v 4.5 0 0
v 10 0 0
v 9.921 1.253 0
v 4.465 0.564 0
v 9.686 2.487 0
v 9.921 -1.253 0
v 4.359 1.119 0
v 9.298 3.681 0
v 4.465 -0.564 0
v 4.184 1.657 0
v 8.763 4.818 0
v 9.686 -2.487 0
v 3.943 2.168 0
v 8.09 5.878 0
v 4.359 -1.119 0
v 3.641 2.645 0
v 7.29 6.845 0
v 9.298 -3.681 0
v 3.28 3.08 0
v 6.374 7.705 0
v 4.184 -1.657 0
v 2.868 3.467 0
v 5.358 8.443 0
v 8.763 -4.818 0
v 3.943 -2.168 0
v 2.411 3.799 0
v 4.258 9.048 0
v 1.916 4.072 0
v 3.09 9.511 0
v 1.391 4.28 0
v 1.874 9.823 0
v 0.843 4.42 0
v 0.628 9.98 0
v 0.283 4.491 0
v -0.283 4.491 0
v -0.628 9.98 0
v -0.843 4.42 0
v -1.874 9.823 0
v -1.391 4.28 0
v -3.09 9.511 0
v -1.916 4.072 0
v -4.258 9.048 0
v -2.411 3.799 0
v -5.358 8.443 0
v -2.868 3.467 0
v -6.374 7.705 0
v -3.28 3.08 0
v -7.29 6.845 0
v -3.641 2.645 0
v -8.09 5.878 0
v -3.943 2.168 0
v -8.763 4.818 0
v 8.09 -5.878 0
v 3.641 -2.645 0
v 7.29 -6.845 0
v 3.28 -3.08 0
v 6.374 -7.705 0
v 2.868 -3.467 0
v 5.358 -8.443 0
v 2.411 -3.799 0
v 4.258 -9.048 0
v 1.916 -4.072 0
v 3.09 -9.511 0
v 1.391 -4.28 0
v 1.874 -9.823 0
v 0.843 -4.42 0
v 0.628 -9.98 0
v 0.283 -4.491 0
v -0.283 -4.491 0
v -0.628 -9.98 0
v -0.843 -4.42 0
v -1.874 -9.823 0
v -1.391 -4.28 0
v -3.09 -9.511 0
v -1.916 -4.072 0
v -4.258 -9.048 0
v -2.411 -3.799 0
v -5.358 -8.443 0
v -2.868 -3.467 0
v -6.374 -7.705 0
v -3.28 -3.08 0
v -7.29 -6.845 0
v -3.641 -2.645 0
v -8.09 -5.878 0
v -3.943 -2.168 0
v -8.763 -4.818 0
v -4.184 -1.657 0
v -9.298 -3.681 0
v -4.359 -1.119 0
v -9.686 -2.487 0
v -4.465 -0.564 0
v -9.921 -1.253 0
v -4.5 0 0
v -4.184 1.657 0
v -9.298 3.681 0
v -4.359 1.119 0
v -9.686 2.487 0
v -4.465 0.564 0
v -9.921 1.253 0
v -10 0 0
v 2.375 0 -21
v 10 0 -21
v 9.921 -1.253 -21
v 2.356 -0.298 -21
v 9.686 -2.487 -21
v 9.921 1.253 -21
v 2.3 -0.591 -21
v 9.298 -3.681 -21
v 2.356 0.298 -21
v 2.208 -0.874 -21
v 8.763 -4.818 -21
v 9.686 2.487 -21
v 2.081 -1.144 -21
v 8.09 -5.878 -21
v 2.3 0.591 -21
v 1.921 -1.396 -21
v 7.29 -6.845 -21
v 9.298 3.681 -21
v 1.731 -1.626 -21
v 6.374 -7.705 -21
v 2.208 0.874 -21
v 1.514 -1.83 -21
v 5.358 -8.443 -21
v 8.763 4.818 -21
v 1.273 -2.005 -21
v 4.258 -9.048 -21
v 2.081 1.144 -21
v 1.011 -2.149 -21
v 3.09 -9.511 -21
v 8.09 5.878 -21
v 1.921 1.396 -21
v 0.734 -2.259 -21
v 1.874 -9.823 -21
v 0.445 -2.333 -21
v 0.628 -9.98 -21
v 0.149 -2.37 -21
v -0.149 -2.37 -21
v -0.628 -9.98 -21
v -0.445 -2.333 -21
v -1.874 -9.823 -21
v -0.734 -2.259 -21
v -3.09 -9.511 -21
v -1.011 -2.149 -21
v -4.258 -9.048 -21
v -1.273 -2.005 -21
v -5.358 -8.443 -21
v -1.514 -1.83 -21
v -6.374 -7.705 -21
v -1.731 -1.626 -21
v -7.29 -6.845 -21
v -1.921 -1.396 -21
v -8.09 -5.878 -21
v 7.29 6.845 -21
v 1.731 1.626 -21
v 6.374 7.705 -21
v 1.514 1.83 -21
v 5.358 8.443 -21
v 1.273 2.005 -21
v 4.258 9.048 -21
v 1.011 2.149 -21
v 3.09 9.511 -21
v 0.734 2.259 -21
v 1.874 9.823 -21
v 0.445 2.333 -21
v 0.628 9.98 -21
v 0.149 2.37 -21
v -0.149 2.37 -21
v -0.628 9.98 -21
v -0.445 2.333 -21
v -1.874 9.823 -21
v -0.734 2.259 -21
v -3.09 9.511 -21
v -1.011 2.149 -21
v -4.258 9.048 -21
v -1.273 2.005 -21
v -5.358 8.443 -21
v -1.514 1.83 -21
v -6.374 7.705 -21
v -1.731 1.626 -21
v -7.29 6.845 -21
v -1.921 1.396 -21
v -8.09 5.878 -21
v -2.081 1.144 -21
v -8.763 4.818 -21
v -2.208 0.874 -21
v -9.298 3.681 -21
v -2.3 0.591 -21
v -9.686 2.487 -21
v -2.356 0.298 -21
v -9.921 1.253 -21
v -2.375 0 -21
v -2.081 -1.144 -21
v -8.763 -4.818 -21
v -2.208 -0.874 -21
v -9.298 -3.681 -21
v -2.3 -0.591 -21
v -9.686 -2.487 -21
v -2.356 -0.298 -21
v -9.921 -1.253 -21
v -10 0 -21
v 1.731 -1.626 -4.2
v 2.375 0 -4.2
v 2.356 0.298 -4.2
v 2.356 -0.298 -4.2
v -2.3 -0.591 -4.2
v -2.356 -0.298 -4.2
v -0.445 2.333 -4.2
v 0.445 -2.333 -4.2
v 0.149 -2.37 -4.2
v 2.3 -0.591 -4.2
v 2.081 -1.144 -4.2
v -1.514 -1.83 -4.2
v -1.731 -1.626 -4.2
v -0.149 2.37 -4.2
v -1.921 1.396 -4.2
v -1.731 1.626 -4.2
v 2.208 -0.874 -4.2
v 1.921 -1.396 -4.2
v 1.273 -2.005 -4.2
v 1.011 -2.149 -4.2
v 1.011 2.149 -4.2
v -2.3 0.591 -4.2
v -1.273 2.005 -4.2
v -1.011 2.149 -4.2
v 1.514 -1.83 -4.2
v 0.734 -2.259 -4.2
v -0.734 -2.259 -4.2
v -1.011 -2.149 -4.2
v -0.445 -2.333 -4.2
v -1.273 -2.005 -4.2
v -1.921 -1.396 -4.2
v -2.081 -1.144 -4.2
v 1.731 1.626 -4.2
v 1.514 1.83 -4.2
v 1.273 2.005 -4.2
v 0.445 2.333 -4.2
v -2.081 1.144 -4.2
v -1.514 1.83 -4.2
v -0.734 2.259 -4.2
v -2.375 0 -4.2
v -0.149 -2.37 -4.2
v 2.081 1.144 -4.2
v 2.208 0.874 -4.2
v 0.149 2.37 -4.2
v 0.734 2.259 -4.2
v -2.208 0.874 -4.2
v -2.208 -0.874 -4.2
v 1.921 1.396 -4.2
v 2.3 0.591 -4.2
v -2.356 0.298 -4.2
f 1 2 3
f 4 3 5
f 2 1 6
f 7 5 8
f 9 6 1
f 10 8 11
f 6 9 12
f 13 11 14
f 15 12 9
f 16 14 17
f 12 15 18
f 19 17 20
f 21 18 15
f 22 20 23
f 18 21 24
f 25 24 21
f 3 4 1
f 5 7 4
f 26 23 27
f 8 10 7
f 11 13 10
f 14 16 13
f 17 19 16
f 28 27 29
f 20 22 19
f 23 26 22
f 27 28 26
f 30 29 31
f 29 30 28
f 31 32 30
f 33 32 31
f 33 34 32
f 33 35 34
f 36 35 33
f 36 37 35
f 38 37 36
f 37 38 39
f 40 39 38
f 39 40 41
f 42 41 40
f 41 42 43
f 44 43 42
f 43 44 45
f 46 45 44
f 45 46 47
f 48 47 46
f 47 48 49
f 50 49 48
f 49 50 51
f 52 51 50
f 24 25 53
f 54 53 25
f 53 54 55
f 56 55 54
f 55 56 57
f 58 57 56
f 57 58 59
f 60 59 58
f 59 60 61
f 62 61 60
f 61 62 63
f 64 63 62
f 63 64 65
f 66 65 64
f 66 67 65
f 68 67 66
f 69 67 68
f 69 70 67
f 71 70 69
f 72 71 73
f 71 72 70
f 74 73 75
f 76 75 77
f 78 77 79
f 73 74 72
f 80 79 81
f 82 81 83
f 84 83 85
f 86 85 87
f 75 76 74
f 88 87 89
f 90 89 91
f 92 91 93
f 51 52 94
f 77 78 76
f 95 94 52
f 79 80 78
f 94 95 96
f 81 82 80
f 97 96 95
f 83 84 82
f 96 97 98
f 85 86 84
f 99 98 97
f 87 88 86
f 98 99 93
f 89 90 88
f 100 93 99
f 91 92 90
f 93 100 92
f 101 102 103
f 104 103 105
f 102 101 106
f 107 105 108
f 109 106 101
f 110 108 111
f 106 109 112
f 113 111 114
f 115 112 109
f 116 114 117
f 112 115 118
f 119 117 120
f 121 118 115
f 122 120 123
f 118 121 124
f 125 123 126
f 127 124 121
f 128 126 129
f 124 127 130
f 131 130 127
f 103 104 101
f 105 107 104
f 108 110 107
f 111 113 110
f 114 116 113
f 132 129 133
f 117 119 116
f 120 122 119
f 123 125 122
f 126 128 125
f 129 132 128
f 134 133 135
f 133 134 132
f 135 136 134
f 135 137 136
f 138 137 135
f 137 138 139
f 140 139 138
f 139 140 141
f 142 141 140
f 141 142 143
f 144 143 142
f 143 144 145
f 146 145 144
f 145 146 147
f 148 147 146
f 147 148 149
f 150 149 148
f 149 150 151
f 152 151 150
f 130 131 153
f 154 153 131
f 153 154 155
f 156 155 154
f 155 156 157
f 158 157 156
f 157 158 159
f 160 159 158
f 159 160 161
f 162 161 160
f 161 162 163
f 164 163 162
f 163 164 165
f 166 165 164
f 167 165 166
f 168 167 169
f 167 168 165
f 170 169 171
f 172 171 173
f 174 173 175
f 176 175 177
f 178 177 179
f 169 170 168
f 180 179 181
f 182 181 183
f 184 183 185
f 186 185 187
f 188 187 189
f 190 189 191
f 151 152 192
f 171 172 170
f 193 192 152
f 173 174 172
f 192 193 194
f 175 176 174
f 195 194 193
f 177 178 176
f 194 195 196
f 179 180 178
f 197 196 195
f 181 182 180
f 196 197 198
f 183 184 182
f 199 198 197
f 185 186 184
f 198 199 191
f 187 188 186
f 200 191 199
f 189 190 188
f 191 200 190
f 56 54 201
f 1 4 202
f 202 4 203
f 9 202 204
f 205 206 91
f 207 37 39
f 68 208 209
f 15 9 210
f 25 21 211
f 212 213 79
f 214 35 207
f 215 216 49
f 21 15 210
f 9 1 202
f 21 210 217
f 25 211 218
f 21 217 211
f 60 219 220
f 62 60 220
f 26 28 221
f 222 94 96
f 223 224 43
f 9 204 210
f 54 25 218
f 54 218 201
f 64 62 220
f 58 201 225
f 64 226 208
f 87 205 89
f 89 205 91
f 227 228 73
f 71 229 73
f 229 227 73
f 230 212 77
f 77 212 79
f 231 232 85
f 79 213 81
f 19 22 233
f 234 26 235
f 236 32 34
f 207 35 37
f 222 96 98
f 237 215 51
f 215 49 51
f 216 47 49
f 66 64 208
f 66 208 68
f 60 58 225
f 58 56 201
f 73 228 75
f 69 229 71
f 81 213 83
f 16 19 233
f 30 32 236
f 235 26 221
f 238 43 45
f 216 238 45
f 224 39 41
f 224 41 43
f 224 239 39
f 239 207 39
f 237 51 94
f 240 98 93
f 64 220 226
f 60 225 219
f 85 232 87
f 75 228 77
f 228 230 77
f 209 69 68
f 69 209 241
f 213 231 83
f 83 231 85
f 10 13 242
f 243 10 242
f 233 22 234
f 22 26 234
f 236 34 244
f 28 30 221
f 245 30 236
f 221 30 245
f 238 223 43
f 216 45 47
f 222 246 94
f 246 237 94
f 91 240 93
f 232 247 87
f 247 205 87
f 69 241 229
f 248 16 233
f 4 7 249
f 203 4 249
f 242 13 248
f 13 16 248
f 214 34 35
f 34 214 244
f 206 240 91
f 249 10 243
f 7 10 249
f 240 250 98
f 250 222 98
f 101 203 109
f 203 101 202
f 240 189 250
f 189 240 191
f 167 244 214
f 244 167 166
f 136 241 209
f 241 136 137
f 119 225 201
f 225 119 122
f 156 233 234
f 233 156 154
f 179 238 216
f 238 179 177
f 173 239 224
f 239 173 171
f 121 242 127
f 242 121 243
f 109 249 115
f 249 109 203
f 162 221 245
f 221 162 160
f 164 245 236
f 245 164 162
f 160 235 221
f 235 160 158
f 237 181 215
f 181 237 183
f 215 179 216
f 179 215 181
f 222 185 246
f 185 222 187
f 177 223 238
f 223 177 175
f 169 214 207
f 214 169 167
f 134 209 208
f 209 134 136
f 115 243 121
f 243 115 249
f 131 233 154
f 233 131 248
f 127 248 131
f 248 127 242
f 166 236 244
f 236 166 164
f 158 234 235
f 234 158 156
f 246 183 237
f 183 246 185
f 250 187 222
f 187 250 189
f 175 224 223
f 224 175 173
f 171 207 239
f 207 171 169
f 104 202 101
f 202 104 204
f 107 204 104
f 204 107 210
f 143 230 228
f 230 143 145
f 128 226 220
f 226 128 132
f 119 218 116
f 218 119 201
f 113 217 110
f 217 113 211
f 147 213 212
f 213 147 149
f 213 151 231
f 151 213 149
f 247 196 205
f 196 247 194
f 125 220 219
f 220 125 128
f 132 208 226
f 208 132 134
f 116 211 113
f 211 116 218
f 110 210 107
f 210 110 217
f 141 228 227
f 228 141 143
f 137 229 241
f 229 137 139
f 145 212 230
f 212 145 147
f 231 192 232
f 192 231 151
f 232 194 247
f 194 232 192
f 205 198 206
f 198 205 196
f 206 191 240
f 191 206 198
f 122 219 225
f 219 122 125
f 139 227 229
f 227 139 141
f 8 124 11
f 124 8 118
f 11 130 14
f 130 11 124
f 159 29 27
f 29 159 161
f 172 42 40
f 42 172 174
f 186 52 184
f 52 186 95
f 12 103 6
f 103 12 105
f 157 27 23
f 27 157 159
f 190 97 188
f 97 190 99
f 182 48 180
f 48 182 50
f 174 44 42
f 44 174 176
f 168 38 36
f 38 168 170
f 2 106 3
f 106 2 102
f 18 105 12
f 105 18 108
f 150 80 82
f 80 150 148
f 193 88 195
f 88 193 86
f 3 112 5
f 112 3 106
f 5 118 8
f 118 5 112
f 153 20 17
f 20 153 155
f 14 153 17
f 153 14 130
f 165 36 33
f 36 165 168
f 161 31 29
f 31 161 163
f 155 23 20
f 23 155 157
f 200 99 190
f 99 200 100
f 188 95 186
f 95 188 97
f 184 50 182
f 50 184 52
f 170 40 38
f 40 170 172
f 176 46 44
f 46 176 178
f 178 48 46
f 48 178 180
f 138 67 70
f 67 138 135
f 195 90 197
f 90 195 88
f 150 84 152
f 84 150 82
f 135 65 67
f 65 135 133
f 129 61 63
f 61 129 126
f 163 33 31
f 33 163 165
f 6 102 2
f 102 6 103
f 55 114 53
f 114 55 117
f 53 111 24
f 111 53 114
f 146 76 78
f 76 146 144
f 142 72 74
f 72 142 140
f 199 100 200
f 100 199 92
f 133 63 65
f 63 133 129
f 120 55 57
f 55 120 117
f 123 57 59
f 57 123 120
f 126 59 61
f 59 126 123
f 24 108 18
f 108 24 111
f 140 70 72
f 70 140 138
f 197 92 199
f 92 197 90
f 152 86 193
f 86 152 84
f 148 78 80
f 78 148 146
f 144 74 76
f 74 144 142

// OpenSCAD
$fn = 50;


difference() {
	union() {
		translate(v = [0, 0, -21.0000000000]) {
			cylinder(h = 21, r = 10.0000000000);
		}
		cylinder(h = 0, r = 16.0000000000);
	}
	union() {
		translate(v = [0, 0, 0]) {
			rotate(a = [0, 0, 0]) {
				difference() {
					union() {
						#translate(v = [0, 0, -21.0000000000]) {
							cylinder(h = 21, r = 2.2500000000);
						}
						#translate(v = [0, 0, -4.2000000000]) {
							cylinder(h = 4.2000000000, r1 = 2.3750000000, r2 = 4.5000000000);
						}
						#translate(v = [0, 0, -21.0000000000]) {
							cylinder(h = 21, r = 2.3750000000);
						}
						#translate(v = [0, 0, -21.0000000000]) {
							cylinder(h = 21, r = 2.2500000000);
						}
					}
					union();
				}
			}
		}
	}
}
